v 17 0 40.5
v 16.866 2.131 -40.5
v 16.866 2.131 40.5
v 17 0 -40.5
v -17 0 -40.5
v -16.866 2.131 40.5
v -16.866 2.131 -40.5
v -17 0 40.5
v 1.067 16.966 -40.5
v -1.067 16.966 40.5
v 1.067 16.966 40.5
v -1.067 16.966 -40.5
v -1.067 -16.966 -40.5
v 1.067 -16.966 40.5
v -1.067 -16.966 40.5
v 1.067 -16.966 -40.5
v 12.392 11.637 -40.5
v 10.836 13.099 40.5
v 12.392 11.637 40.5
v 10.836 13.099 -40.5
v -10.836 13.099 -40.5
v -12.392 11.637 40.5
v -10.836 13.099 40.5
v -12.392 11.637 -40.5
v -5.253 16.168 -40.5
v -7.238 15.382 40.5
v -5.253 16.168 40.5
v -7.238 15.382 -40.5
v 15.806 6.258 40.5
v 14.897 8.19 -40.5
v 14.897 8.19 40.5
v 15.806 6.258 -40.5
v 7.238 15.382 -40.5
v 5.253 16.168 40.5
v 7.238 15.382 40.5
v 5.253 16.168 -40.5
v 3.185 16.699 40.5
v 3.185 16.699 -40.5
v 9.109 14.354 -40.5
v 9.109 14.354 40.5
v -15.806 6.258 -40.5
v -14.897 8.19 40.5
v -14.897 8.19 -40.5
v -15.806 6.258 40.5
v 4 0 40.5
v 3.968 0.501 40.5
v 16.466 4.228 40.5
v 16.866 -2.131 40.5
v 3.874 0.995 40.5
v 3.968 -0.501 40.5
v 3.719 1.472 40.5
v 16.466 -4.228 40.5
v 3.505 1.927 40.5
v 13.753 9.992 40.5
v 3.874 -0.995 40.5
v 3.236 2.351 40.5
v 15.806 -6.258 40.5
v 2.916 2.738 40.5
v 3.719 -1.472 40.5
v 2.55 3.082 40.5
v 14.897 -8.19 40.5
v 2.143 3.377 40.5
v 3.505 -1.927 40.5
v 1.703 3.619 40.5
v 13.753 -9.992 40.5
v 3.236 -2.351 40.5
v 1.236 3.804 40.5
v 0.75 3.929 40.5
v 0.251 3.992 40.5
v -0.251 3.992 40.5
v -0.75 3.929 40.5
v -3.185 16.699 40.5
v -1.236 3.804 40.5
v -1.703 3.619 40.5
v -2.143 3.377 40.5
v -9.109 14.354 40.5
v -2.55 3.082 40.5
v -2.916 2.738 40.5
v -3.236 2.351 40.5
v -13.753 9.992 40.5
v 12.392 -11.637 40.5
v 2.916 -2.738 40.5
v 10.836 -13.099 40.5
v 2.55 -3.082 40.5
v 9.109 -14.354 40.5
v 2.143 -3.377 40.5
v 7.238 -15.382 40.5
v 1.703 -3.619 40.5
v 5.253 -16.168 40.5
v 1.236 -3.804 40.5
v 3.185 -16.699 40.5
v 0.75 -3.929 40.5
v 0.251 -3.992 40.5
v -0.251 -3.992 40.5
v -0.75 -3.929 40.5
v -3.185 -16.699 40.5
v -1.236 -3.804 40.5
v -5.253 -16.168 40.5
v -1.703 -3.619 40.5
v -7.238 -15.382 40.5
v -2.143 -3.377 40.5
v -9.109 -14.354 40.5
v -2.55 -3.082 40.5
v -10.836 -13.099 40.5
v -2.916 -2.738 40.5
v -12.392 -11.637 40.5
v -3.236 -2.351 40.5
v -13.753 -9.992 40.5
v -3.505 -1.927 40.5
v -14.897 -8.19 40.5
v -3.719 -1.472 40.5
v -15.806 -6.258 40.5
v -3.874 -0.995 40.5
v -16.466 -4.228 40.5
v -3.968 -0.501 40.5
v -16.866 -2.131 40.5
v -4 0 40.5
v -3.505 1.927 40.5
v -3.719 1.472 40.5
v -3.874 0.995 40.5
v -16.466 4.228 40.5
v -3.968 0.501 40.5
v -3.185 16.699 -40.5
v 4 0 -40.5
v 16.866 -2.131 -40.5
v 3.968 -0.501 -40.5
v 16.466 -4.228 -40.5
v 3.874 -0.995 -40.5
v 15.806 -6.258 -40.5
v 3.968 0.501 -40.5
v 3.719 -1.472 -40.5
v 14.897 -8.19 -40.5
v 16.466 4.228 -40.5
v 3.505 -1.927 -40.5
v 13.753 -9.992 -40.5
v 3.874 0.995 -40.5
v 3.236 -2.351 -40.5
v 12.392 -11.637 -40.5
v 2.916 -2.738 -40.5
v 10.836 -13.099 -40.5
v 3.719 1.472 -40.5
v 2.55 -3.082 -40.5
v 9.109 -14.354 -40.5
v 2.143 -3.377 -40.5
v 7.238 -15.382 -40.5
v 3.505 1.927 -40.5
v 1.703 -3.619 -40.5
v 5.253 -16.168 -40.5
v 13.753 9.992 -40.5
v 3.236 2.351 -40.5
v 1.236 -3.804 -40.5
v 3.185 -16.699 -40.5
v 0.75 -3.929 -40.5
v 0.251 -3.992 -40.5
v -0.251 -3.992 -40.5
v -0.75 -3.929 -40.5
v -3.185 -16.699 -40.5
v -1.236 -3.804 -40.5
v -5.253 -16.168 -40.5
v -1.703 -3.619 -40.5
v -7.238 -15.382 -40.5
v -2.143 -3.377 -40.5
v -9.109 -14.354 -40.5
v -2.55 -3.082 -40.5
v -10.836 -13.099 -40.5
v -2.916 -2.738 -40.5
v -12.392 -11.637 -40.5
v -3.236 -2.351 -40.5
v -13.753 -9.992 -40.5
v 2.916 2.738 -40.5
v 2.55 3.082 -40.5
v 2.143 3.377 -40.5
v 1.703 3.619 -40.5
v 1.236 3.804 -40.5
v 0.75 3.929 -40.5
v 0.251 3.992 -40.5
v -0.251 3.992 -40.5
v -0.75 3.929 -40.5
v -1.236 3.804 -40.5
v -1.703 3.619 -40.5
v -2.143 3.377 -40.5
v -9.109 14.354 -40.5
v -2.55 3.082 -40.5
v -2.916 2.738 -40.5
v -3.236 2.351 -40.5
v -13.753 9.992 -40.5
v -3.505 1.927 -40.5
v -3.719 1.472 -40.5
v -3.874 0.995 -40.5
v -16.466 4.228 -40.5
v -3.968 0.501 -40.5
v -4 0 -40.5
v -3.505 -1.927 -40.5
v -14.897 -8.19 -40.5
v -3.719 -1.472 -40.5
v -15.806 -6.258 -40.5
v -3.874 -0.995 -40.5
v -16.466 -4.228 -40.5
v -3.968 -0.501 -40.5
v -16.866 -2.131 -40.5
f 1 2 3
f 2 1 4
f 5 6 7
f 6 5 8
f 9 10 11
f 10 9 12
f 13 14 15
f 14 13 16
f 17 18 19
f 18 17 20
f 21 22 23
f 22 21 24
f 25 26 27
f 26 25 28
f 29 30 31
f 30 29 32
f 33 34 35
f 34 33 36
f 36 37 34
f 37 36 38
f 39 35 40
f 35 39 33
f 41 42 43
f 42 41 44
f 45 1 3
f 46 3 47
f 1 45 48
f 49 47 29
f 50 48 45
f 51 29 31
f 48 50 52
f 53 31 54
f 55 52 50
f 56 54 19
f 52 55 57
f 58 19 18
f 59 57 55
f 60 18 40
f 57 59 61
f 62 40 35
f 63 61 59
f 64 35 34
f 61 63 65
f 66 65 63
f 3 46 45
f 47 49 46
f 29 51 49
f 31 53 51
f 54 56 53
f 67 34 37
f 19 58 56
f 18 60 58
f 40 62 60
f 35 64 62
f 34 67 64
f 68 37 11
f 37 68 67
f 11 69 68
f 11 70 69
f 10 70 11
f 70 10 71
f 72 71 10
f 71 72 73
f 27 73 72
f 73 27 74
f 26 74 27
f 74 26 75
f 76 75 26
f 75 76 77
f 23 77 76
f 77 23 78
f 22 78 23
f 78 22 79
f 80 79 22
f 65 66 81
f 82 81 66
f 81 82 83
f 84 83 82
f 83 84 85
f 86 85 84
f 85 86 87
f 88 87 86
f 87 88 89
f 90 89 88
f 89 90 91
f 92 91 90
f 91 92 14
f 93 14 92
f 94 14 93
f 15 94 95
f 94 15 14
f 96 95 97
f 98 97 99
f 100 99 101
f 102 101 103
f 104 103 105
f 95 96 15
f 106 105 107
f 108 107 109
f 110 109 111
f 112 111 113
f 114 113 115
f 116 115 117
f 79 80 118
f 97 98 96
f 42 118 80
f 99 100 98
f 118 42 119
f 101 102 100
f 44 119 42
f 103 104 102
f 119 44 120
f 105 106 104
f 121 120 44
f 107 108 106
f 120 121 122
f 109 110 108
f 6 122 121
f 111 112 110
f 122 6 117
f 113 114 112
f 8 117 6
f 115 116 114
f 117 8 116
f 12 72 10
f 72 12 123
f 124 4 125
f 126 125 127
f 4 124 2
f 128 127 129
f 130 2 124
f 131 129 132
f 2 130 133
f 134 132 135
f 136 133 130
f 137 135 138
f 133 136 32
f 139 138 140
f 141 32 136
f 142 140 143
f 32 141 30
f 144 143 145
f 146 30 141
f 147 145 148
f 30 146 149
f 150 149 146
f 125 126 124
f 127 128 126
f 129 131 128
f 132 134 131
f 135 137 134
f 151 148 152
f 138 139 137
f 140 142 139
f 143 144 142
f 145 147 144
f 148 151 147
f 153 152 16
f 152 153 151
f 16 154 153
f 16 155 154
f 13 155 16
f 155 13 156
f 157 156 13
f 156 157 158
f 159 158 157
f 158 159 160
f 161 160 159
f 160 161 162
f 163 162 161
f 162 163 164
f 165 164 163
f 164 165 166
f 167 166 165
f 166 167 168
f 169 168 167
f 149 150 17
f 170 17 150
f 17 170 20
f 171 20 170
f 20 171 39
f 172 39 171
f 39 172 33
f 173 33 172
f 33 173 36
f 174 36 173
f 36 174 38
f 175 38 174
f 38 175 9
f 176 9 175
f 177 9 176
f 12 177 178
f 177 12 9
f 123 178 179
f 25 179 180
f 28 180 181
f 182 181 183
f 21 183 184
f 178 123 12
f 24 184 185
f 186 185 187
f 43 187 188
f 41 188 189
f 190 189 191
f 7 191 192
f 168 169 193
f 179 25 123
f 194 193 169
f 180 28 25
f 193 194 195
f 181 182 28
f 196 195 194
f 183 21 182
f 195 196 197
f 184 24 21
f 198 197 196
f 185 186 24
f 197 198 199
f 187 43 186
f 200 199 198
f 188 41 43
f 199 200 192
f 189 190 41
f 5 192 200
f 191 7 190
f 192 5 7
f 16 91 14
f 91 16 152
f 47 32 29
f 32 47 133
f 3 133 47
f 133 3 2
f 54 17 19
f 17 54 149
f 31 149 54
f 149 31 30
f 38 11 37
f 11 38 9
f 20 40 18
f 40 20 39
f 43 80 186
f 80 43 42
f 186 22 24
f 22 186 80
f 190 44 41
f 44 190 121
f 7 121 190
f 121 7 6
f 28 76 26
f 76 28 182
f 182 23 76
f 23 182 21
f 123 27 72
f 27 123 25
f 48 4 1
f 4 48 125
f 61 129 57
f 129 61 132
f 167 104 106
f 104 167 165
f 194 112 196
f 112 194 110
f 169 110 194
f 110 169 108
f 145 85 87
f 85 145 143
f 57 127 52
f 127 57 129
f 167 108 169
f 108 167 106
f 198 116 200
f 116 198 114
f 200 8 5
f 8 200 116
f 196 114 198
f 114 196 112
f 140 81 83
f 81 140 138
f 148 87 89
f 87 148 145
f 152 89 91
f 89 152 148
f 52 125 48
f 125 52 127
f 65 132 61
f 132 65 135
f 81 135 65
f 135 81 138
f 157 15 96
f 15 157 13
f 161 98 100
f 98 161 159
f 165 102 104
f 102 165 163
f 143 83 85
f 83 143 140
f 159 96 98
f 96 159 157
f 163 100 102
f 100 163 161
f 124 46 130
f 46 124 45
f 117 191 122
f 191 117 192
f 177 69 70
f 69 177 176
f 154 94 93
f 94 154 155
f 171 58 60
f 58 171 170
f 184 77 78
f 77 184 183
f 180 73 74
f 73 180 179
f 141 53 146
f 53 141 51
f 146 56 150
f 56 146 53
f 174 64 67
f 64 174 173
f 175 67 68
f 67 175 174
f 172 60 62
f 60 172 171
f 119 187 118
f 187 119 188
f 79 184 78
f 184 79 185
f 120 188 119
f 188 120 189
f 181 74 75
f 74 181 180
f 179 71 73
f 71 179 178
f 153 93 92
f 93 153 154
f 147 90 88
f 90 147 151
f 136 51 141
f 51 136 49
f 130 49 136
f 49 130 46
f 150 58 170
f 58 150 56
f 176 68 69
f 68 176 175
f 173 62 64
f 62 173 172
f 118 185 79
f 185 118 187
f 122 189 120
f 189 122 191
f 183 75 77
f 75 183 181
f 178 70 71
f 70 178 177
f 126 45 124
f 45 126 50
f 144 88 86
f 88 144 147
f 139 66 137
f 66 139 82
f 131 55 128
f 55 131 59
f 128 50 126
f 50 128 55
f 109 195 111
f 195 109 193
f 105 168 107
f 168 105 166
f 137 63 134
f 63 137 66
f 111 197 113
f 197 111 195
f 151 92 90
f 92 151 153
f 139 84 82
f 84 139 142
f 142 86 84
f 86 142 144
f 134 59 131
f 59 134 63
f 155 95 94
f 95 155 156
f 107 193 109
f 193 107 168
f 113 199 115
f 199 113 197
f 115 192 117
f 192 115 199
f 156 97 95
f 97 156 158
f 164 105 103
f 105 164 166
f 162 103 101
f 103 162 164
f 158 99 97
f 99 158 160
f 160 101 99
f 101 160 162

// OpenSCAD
$fn = 50;


difference() {
	union() {
		translate(v = [0, 0, -40.5000000000]) {
			cylinder(h = 81, r = 17.0000000000);
		}
	}
	union() {
		translate(v = [0, 0, -100.0000000000]) {
			cylinder(h = 200, r = 4);
		}
	}
}
